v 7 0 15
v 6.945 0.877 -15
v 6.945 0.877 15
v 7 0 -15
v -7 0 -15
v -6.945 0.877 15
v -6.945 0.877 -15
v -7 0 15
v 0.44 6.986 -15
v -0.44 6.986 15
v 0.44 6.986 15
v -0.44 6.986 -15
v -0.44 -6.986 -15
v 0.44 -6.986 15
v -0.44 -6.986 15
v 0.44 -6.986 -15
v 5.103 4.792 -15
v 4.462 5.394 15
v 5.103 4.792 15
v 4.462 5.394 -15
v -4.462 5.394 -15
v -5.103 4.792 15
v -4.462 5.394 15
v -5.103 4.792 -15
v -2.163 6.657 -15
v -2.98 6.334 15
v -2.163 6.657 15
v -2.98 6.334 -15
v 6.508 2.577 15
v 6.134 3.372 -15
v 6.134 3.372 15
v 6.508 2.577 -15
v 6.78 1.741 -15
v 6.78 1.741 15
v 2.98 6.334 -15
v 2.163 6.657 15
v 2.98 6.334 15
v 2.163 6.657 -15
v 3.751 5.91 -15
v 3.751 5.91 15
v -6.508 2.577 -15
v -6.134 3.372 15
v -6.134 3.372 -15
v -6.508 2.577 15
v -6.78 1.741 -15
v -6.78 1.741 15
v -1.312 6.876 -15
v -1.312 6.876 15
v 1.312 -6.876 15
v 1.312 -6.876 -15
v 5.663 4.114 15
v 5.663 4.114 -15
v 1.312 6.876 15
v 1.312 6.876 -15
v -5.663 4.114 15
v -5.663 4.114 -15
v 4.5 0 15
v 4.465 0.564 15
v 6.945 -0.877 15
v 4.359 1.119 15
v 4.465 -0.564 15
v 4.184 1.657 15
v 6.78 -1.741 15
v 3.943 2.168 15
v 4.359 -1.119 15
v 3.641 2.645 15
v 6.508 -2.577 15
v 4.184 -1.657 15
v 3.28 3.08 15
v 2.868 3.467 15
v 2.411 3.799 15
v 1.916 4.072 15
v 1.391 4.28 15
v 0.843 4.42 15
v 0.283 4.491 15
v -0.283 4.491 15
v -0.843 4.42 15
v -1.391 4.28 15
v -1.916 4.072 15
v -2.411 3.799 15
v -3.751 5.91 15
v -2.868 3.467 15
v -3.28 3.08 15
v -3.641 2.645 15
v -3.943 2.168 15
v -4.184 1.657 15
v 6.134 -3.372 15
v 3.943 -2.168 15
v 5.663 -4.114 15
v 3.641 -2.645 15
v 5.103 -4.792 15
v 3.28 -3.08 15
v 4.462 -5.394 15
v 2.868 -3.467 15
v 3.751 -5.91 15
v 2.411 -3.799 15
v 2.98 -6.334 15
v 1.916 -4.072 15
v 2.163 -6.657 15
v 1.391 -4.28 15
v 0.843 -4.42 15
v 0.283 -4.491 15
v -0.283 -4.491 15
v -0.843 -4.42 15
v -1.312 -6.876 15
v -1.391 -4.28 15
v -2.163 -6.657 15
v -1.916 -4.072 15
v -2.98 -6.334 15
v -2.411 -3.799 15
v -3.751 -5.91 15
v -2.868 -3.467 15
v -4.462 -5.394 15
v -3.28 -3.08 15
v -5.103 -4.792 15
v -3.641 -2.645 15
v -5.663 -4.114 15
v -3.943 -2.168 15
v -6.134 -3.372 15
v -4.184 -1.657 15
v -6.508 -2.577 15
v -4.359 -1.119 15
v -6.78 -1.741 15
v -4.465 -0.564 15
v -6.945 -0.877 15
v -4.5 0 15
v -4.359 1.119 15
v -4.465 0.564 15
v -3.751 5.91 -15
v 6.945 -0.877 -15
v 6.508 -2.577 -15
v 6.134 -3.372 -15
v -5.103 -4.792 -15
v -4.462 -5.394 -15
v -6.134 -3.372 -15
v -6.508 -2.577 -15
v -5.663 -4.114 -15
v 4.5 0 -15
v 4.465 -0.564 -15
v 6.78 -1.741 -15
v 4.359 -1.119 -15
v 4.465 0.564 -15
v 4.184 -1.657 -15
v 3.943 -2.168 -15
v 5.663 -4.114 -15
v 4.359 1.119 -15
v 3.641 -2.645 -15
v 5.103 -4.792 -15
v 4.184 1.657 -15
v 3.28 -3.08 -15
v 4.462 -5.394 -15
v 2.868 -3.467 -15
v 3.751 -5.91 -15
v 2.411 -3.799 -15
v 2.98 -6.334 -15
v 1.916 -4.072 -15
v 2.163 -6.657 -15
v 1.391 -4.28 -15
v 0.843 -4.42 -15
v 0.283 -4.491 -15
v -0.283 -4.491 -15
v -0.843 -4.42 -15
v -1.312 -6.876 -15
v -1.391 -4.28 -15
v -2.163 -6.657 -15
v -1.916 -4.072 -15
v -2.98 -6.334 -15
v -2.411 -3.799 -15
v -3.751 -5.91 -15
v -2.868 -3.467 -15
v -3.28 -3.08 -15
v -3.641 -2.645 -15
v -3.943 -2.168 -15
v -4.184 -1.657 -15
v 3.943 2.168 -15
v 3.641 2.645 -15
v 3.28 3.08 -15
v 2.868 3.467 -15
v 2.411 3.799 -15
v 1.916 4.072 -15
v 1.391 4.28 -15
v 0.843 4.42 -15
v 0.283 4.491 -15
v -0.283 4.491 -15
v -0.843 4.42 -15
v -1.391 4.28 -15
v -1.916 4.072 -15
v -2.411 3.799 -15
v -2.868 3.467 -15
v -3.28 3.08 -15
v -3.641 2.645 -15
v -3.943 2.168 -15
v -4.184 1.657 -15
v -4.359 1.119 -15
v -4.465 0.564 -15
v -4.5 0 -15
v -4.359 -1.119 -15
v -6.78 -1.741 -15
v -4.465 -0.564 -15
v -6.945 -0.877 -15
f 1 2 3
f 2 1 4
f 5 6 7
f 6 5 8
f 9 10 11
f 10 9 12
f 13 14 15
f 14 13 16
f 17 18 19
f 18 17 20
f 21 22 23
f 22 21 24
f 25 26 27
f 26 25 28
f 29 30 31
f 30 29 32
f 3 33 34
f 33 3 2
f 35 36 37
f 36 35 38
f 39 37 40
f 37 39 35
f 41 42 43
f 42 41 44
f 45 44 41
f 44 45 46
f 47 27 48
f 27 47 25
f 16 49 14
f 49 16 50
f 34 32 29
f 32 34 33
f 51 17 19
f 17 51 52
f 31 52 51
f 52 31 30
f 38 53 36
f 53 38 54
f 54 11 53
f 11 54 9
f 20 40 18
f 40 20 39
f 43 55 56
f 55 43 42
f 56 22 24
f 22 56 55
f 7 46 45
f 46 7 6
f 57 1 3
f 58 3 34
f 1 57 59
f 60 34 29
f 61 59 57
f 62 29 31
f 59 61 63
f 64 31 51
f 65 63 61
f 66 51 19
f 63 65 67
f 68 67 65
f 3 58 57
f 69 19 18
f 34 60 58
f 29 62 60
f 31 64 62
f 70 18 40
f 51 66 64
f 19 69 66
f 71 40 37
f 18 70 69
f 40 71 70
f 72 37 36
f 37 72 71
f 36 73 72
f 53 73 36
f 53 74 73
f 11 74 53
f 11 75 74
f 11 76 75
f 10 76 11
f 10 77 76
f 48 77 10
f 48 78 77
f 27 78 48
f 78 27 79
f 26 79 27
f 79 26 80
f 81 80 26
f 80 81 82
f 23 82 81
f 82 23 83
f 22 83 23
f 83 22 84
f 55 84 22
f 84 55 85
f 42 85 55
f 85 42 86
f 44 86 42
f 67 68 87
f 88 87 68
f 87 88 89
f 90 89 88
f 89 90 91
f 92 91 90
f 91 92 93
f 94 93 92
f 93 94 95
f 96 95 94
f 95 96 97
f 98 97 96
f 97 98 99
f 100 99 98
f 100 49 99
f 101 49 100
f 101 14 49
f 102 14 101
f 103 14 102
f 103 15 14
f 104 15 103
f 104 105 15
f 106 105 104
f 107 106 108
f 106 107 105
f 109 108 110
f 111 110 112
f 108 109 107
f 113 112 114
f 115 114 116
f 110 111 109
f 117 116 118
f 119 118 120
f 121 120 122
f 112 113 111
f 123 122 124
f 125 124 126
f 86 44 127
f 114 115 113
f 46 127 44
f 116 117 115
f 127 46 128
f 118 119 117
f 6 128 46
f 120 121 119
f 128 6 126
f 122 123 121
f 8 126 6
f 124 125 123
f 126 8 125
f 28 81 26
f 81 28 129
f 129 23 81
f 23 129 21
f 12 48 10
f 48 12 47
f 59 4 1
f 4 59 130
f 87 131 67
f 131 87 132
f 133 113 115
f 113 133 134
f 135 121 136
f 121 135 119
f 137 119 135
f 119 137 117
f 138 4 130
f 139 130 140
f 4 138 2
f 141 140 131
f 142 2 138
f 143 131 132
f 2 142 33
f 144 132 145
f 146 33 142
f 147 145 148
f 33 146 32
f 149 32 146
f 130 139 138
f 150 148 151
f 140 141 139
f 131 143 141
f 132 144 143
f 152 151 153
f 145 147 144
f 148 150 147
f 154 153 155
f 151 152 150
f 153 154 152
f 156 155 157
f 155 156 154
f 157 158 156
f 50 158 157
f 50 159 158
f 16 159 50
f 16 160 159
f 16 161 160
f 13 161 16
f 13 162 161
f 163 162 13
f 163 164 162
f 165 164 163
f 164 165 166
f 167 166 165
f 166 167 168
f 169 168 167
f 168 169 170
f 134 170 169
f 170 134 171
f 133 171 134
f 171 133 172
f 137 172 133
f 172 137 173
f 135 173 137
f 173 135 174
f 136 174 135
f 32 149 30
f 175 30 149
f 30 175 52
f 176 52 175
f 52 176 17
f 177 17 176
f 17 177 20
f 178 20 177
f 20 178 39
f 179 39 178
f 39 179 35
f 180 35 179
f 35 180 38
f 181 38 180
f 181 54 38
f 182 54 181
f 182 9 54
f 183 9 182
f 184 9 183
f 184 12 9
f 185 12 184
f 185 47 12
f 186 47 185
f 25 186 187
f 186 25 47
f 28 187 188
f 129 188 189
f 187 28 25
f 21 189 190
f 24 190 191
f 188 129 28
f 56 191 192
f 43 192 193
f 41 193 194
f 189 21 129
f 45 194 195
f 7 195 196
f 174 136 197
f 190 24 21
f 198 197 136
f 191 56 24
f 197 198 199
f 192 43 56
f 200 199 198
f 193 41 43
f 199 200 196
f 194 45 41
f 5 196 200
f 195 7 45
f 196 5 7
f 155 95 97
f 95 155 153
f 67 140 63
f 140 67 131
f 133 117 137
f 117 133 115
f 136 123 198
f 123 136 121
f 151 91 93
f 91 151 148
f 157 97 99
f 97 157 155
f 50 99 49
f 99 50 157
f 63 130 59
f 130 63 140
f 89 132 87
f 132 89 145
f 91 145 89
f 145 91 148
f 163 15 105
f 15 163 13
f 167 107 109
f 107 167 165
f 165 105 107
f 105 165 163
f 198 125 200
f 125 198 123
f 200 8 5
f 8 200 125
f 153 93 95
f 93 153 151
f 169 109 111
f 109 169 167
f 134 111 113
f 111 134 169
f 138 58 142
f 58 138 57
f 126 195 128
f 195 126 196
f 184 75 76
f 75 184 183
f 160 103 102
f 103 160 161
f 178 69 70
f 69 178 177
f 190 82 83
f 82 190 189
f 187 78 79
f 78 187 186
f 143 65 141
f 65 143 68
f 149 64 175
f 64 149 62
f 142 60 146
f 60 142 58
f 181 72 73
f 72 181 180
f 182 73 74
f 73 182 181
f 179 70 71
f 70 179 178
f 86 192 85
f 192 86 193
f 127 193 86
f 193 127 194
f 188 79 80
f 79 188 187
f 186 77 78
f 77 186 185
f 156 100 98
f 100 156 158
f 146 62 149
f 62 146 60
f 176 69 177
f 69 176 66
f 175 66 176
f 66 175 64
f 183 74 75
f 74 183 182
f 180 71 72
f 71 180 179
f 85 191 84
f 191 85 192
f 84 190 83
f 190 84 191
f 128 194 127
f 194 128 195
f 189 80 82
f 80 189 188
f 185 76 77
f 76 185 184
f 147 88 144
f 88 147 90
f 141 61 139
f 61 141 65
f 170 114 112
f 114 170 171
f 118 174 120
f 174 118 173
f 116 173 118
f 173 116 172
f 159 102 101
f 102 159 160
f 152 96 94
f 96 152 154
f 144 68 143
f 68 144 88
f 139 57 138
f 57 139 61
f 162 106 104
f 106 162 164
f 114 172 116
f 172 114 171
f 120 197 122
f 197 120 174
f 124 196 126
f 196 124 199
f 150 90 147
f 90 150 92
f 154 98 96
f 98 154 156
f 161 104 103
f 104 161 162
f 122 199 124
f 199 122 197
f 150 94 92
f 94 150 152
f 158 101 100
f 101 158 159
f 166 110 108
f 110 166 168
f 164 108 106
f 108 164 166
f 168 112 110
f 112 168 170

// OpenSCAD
$fn = 50;


difference() {
	union() {
		translate(v = [0, 0, -15.0000000000]) {
			cylinder(h = 30, r = 7.0000000000);
		}
	}
	union() {
		translate(v = [0, 0, -100.0000000000]) {
			cylinder(h = 200, r = 4.5000000000);
		}
	}
}
